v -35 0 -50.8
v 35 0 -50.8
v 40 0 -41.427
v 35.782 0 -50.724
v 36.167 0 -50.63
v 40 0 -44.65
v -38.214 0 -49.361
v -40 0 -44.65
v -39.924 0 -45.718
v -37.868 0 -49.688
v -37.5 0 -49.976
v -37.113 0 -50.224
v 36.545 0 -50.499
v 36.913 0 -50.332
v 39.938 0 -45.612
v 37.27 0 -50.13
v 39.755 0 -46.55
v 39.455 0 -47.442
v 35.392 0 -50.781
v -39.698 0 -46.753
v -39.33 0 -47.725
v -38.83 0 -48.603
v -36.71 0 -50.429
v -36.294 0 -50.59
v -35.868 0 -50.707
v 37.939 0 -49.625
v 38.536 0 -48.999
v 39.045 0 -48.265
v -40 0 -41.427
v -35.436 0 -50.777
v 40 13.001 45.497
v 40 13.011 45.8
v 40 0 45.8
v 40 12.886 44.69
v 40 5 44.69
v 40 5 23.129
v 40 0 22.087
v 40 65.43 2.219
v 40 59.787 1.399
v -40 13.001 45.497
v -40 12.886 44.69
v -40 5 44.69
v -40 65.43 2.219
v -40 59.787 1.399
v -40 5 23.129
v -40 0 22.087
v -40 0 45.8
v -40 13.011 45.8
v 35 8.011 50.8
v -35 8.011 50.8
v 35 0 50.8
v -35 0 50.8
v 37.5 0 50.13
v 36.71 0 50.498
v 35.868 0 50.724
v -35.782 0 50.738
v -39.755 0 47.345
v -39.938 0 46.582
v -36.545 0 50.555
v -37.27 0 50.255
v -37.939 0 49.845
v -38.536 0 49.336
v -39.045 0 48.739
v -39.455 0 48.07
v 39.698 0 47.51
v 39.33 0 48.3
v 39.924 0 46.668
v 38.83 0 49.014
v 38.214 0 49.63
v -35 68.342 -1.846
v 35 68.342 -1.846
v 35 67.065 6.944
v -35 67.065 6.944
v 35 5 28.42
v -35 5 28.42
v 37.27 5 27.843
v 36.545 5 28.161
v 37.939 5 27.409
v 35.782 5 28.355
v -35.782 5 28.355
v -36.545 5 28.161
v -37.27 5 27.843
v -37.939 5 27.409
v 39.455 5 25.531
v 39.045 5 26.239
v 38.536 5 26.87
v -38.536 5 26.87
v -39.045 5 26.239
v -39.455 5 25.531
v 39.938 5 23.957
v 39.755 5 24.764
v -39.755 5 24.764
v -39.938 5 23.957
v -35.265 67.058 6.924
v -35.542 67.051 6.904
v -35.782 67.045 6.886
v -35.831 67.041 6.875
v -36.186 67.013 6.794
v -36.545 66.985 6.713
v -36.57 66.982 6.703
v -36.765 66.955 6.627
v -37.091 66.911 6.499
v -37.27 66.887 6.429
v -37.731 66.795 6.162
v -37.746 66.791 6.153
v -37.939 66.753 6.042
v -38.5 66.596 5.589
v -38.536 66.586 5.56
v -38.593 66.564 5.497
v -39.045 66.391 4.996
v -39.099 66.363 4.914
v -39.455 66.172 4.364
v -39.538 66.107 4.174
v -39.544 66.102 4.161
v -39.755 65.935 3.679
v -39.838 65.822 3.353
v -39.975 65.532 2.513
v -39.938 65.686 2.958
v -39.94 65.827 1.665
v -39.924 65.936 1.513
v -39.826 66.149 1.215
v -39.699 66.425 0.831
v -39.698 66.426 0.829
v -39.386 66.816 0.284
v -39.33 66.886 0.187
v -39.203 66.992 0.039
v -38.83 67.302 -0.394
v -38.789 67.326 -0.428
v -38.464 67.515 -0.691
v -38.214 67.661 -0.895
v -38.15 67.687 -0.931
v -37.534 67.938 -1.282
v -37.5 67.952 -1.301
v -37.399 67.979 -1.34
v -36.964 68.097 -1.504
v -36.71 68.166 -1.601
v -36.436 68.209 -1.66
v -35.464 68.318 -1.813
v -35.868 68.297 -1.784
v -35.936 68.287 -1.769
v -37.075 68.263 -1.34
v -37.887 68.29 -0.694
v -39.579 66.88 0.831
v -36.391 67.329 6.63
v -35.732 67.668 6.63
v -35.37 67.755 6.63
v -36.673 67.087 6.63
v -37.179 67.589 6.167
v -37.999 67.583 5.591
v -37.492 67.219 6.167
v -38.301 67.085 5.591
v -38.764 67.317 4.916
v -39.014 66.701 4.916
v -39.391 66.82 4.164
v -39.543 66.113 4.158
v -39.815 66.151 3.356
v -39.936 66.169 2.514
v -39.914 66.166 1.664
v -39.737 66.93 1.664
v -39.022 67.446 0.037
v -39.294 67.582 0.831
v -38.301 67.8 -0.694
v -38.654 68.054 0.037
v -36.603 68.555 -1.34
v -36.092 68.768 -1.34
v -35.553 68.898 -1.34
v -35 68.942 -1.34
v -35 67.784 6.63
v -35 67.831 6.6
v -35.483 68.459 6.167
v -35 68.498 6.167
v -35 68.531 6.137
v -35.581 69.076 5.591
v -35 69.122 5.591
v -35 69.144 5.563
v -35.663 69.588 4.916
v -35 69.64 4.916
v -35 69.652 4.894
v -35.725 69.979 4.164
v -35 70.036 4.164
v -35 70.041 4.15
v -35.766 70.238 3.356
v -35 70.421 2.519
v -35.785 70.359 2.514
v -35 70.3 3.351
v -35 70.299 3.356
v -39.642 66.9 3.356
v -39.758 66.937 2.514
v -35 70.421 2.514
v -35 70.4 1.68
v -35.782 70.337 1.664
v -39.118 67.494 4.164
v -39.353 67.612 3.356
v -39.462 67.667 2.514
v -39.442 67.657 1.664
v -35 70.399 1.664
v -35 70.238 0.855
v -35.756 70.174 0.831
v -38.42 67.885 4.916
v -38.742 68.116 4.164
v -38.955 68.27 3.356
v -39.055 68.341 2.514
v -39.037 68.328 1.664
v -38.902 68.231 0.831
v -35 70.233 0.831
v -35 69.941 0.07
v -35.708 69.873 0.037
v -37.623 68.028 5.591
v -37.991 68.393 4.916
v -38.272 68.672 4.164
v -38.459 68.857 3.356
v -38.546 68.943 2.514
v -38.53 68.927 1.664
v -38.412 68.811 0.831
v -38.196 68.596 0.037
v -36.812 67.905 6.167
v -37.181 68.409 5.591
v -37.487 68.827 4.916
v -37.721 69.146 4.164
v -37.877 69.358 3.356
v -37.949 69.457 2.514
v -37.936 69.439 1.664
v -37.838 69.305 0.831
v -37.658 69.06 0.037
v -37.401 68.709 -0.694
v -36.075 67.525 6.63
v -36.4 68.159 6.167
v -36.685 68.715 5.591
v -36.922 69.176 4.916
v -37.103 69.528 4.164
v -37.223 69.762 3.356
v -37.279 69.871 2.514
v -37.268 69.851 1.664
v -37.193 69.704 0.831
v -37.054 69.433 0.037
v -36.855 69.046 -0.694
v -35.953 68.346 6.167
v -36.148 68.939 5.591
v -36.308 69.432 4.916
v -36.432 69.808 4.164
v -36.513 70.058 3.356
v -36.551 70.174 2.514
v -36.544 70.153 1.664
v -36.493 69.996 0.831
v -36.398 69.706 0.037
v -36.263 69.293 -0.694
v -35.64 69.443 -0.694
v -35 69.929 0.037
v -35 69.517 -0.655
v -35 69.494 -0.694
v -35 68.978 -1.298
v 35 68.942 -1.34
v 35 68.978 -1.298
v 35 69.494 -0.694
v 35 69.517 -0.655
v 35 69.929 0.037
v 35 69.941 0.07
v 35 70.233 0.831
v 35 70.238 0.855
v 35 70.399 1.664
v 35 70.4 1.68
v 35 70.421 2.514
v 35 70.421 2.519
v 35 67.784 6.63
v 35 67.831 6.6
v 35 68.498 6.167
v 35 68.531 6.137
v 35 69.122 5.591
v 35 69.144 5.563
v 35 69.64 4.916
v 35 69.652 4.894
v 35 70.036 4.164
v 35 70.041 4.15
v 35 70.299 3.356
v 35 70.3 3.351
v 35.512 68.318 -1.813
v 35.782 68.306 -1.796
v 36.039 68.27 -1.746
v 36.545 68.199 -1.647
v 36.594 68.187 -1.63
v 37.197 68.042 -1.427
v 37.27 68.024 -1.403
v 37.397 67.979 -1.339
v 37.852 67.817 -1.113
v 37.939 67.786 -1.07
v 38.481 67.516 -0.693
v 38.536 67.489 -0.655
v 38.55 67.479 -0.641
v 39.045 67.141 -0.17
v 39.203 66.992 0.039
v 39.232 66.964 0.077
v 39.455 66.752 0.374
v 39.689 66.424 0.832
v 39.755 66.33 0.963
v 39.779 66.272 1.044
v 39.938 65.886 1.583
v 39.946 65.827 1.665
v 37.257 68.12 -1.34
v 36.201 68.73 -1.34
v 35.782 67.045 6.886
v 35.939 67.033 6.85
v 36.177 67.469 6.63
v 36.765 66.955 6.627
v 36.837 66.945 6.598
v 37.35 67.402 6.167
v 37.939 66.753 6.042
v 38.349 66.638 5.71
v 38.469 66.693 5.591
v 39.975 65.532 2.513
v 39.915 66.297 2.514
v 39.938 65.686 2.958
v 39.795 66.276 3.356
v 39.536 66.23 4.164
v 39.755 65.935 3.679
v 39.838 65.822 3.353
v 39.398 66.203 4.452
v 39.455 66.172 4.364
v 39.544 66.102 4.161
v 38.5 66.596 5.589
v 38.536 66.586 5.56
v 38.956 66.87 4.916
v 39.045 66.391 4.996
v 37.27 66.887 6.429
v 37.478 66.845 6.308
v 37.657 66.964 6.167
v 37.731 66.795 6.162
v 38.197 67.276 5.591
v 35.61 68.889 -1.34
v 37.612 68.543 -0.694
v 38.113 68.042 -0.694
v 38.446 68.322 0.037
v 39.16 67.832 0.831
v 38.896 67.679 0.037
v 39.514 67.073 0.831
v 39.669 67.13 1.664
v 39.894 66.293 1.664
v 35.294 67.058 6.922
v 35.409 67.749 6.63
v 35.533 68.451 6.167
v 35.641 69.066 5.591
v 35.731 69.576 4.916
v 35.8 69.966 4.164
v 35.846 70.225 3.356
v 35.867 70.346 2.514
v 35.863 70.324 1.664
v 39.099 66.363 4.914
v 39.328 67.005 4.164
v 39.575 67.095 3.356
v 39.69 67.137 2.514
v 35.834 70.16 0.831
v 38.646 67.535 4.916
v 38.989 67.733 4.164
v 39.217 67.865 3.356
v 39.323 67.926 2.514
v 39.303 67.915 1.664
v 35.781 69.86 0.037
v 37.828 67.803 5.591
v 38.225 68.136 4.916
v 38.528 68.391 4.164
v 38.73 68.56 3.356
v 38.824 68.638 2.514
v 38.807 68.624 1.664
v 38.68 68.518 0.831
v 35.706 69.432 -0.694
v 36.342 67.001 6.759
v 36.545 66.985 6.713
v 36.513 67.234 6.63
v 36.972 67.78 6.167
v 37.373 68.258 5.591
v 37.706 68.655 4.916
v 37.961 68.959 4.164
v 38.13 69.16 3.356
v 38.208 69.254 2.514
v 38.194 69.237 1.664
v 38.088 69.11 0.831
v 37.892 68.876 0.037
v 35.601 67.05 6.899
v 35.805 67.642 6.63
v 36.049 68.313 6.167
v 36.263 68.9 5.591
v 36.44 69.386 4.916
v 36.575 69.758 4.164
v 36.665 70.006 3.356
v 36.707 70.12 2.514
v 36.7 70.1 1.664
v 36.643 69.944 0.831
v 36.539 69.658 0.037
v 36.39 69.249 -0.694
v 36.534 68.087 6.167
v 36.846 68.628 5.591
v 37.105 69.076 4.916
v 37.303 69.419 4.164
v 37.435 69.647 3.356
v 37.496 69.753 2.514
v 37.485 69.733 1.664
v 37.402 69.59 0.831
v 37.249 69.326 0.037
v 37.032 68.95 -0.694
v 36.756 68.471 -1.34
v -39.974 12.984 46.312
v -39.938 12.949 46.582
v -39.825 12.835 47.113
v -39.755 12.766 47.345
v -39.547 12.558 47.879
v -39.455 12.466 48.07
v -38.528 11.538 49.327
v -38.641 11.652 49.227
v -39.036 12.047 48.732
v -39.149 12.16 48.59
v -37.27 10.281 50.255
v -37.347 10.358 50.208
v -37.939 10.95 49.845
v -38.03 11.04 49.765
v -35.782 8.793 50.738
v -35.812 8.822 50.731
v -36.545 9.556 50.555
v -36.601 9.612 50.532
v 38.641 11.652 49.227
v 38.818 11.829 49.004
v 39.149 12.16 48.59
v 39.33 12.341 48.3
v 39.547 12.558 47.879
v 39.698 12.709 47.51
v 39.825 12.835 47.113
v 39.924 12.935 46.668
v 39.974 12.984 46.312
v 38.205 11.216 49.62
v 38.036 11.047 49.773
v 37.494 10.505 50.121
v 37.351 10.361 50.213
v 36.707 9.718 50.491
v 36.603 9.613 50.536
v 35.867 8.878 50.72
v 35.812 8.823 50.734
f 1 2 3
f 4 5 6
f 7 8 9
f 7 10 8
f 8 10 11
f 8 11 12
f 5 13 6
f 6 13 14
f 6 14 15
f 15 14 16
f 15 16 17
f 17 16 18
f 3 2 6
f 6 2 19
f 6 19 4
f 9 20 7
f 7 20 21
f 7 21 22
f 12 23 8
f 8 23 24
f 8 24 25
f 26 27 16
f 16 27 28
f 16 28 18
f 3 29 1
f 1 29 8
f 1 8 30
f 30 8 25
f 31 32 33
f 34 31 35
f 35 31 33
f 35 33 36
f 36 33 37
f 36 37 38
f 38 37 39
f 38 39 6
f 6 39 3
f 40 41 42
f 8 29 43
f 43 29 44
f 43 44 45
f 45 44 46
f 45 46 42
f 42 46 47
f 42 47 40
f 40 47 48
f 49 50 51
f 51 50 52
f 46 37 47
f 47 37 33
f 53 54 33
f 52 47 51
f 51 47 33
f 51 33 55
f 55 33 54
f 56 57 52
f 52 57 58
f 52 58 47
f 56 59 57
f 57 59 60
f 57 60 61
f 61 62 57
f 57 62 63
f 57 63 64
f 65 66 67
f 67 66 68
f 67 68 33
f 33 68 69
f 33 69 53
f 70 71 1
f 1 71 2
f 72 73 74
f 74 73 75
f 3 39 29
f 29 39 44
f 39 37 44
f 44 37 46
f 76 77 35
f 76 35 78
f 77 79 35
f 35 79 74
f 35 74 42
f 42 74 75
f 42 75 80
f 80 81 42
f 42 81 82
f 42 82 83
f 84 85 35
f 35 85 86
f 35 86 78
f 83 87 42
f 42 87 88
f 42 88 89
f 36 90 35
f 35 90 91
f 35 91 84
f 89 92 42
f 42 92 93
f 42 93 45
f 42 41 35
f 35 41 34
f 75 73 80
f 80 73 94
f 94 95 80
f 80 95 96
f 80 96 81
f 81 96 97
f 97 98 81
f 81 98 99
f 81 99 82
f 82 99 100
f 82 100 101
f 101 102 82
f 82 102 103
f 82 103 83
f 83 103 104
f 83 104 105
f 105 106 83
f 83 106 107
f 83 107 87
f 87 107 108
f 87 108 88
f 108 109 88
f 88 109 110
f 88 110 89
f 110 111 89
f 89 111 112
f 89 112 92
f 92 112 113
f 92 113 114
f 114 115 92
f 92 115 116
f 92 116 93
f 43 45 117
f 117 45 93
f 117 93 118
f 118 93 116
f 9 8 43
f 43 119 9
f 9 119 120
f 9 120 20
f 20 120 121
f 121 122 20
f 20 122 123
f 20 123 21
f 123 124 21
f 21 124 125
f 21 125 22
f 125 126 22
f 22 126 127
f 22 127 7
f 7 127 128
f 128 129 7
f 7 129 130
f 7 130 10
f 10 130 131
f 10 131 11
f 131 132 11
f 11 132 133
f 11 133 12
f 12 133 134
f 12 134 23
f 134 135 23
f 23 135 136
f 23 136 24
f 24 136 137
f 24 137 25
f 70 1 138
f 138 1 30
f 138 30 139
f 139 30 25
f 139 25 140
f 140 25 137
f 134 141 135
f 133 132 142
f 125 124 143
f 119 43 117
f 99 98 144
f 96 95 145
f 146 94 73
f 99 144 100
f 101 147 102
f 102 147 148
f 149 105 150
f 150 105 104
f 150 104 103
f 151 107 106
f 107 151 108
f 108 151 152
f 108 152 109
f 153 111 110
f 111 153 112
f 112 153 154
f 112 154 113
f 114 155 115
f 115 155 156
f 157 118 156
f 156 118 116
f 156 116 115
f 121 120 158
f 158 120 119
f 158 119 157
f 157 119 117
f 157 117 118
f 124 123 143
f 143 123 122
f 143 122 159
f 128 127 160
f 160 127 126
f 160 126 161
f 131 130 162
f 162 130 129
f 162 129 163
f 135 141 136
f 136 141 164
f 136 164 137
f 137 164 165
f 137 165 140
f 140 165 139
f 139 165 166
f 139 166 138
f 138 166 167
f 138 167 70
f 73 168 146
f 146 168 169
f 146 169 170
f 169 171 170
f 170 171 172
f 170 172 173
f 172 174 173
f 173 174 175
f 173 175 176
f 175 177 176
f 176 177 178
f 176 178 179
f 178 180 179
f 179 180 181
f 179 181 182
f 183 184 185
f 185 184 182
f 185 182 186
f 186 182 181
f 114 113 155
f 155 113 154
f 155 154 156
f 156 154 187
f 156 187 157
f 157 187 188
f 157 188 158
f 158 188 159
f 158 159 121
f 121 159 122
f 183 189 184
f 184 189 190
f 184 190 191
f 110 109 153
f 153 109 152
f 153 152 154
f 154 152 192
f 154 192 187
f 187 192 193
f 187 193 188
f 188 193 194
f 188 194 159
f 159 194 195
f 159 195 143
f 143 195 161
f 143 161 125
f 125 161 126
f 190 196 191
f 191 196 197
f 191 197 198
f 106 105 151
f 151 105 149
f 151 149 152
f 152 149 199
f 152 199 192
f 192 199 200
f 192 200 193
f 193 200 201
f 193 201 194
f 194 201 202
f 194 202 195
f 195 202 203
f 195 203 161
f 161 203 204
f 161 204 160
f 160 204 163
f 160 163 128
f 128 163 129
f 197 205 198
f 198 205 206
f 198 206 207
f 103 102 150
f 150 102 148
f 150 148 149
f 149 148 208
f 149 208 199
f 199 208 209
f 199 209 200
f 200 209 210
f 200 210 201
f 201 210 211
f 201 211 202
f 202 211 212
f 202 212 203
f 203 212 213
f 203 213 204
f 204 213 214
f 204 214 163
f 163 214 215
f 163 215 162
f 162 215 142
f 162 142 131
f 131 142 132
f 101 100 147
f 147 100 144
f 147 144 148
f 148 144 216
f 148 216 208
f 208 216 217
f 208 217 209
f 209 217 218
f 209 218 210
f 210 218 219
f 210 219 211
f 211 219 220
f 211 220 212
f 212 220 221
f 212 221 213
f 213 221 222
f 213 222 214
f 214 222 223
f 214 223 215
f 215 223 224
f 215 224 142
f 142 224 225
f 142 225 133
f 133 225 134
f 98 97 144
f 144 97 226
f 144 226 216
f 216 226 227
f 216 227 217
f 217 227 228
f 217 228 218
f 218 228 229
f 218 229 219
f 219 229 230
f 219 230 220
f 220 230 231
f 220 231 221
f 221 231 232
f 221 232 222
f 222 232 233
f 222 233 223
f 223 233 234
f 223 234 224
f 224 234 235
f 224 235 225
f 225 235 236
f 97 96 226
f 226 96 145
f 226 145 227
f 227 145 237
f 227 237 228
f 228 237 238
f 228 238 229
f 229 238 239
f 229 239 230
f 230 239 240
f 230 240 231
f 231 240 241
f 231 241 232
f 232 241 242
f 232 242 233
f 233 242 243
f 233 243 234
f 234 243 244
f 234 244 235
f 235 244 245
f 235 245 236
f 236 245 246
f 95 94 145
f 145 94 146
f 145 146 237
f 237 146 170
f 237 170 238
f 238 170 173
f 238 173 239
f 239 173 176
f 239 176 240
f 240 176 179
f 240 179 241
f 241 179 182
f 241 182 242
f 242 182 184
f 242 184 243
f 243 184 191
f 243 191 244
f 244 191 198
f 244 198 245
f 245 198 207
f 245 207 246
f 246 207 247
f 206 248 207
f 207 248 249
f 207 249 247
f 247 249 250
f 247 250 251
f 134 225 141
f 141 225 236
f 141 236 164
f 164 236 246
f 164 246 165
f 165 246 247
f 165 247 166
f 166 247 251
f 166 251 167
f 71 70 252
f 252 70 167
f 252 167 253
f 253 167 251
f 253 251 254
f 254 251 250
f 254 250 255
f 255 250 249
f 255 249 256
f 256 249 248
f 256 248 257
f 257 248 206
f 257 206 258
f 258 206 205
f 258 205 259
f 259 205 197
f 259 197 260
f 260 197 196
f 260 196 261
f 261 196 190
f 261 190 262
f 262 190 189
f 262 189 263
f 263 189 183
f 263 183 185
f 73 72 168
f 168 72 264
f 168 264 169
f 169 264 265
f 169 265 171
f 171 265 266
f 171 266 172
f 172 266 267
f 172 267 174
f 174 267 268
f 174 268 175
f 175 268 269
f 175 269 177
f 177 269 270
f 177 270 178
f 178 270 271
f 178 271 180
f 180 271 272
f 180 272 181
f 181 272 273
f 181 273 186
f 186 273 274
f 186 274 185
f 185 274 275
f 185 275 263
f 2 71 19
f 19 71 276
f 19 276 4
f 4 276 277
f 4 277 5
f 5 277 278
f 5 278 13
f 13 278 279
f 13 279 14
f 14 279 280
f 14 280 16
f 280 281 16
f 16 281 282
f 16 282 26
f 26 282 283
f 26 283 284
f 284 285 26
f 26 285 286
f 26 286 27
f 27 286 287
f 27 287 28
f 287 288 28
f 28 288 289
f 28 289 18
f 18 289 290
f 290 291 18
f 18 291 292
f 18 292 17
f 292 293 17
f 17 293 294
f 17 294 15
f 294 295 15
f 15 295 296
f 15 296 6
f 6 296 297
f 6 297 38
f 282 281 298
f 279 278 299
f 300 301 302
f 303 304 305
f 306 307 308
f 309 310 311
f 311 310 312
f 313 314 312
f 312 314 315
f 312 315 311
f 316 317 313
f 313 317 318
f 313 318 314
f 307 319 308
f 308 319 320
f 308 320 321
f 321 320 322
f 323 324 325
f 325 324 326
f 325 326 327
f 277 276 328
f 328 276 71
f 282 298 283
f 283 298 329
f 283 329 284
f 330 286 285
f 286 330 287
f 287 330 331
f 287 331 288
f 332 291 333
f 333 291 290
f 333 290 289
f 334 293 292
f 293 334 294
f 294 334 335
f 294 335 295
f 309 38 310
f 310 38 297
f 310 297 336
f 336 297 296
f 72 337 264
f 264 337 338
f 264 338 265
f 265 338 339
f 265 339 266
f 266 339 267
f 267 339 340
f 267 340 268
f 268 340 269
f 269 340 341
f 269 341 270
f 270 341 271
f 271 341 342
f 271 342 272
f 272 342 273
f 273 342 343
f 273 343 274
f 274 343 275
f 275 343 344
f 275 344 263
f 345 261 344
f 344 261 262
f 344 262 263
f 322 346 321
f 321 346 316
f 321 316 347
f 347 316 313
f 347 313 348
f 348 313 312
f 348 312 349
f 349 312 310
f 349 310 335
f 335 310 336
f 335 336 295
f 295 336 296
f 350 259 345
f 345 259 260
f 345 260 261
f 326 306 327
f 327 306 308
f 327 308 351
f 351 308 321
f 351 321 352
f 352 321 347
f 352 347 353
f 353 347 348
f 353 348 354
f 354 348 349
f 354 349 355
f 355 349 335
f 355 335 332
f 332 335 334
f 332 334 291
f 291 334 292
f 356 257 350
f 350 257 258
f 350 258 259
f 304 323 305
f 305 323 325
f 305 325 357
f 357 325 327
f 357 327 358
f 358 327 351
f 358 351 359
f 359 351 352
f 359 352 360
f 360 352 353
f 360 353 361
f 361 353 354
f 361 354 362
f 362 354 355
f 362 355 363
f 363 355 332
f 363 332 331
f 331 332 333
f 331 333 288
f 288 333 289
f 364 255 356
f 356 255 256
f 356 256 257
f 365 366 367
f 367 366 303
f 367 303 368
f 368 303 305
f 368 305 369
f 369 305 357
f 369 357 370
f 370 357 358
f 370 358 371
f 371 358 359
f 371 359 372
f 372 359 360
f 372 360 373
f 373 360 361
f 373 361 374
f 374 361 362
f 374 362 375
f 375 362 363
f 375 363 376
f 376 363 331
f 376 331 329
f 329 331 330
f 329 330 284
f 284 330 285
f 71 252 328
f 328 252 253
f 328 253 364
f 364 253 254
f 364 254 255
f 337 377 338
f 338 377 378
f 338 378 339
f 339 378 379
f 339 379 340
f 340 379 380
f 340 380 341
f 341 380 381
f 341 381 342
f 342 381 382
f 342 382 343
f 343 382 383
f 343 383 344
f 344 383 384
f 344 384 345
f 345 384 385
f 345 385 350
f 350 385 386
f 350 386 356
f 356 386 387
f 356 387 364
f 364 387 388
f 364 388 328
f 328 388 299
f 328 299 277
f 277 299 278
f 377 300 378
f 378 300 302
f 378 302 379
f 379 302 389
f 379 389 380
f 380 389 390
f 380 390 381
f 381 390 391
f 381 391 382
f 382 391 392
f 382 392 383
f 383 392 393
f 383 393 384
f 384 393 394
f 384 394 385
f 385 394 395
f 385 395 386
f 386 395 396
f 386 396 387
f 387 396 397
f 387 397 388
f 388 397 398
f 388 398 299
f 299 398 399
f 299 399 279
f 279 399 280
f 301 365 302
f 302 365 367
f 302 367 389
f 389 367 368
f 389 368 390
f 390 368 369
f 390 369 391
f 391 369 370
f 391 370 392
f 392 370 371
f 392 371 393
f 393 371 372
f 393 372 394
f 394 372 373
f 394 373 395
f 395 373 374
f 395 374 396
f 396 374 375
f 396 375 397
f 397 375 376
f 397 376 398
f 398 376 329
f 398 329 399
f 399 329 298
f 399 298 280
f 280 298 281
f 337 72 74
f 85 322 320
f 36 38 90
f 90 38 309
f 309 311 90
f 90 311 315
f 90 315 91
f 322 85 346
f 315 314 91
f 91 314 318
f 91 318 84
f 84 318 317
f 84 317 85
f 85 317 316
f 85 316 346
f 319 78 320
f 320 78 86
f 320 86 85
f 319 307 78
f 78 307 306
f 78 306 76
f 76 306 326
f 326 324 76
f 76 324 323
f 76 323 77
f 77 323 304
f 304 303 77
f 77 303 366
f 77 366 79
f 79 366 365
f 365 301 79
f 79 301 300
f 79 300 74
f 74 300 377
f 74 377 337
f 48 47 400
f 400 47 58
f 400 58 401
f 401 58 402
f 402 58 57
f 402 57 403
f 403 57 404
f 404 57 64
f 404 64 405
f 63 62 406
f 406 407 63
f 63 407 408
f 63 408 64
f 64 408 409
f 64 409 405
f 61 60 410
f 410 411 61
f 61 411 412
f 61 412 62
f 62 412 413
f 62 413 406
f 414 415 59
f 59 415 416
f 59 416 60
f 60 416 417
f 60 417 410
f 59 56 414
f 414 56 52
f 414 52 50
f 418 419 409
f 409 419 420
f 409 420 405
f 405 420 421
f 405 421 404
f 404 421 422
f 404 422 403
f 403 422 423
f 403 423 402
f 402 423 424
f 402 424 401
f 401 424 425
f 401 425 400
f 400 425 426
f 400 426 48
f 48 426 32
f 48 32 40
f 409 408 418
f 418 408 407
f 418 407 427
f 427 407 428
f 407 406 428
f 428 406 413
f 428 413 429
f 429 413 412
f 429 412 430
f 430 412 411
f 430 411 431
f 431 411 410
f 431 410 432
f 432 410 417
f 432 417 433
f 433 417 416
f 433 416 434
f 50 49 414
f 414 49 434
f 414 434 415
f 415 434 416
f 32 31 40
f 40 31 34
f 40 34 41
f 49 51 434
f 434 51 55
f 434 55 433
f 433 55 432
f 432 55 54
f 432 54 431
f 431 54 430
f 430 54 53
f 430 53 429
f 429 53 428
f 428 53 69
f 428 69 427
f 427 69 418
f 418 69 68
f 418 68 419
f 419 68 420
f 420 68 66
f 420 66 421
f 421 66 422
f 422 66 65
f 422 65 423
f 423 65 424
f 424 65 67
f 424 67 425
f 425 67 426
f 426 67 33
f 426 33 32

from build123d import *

# Parameters (mm, degrees)
BASE_W                  = 80
BASE_H                  = 101.6
BOSS_EXTRUDE1_DEPTH     = 76.2
SKETCH2_OUTSIDE_W       = 133.62
SKETCH2_OUTSIDE_H       = 108.22
CUT_EXTRUDE1_DEPTH      = 122.602138139
CUT_EXTRUDE2_DEPTH      = 122.602138139
CUT_EXTRUDE5_DEPTH      = 122.602138139
CUT_EXTRUDE5_DEPTH_BACK = 122.602138139
FILLET9_R               = 5


with BuildPart() as part:
    # Base → Boss-Extrude1 (new body)
    with BuildSketch(Plane(origin=(0, 0, 0), x_dir=(1, 0, 0), z_dir=(0, 1, 0))):
        Rectangle(BASE_W, BASE_H)
    extrude(amount=BOSS_EXTRUDE1_DEPTH)

    # Sketch2 outside → Cut-Extrude1 (cut, through all)
    with BuildSketch(Plane.ZY.offset(40)):
        with Locations((0, 38.1)):
            Rectangle(SKETCH2_OUTSIDE_W, SKETCH2_OUTSIDE_H)
        Polygon((-50.8, 0), (3.783173521, 76.2), (27.722793107, 7.014775443), (50.8, 15), (50.8, 0), align=None, mode=Mode.SUBTRACT)
    extrude(amount=-CUT_EXTRUDE1_DEPTH, mode=Mode.SUBTRACT)

    # Sketch3 → Cut-Extrude2 (cut, through all)
    with BuildSketch(Plane.ZY.offset(40)):
        Polygon((-41.426759988, 0), (22.086778061, 0), (1.39927914, 59.786633335), align=None)
    extrude(amount=-CUT_EXTRUDE2_DEPTH, mode=Mode.SUBTRACT)

    # Sketch4 → Cut-Extrude5 (cut, two sides: drawn at the far end of the back side and taken through both)
    with BuildSketch(Plane.ZY.offset(40).offset(-CUT_EXTRUDE5_DEPTH_BACK)):
        Polygon((-50.478149223, 233.014597048), (27.722793107, 7.014775443), (28.419950021, 5), (44.690435309, 5), (44.690435309, 12.88595534), (44.690435309, 252.032995353), (-49.038158805, 721.053440145), (-144.206743336, 702.035041841), align=None)
    extrude(amount=CUT_EXTRUDE5_DEPTH + CUT_EXTRUDE5_DEPTH_BACK, mode=Mode.SUBTRACT)

    # Fillet9
    # the kernel refuses this fillet: 5 mm, written as the material it takes off along each edge
    with BuildSketch(Plane(origin=(35, 65.430074367, 2.218938363), x_dir=(0, 0.3269994156125086, 0.9450245405221379), z_dir=(1, 0, 0))) as fillet9_piece_1_section:
        Polygon((0, 0), (FILLET9_R * 1.02, 0), (FILLET9_R * 1.02, -FILLET9_R * 1.97193336822), (-FILLET9_R * 0.58939542952, -FILLET9_R * 0.832474040232), align=None)
    fillet9_piece_1 = extrude(amount=FILLET9_R * 1.02, mode=Mode.PRIVATE)
    fillet9_piece_1 = fillet9_piece_1 - Plane(origin=(35, 65.430074367, 2.218938363), x_dir=(0, -0.9896165143253448, -0.14373292794121578), z_dir=(1, 0, 0)) * Sphere(FILLET9_R, mode=Mode.PRIVATE)
    add(fillet9_piece_1, mode=Mode.SUBTRACT)
    with BuildSketch(Plane(origin=(-35, 65.430074367, 2.218938363), x_dir=(0, 0.5823298395581055, -0.8129526172909656), z_dir=(-1, 0, 0))) as fillet9_piece_2_section:
        Polygon((0, 0), (FILLET9_R * 1.02, 0), (FILLET9_R * 1.02, -FILLET9_R * 1.97193336822), (-FILLET9_R * 0.58939542952, -FILLET9_R * 0.832474040232), align=None)
    fillet9_piece_2 = extrude(amount=FILLET9_R * 1.02, mode=Mode.PRIVATE)
    fillet9_piece_2 = fillet9_piece_2 - Plane(origin=(-35, 65.430074367, 2.218938363), x_dir=(0, -0.9896165143253448, -0.14373292794121578), z_dir=(-1, 0, 0)) * Sphere(FILLET9_R, mode=Mode.PRIVATE)
    add(fillet9_piece_2, mode=Mode.SUBTRACT)
    with BuildSketch(Plane(origin=(40, 67.065071445, 6.944061066), x_dir=(-1, 0, 0), z_dir=(0, -0.9450245405221379, 0.32699941561250884))) as fillet9_piece_3_section:
        with BuildLine():
            CenterArc((FILLET9_R, FILLET9_R), FILLET9_R, 180, 90)
            Line((0, FILLET9_R), (0, 0))
            Line((0, 0), (FILLET9_R, 0))
        make_face()
    fillet9_piece_3 = extrude(amount=78.175618763, mode=Mode.PRIVATE)
    fillet9_piece_3 = split(fillet9_piece_3, bisect_by=Plane(origin=(40, 5, 6.944061066), z_dir=(0, 1, 0)), keep=Keep.TOP, mode=Mode.PRIVATE)
    add(fillet9_piece_3, mode=Mode.SUBTRACT)
    with BuildSketch(Plane(origin=(40, -12.5, 50.8), x_dir=(-1, 0, 0), z_dir=(0, 1, 0))) as fillet9_piece_4:
        with BuildLine():
            CenterArc((FILLET9_R, -FILLET9_R), FILLET9_R, 90, 90)
            Line((0, -FILLET9_R), (0, 0))
            Line((0, 0), (FILLET9_R, 0))
        make_face()
    extrude(amount=40, mode=Mode.SUBTRACT)
    with BuildSketch(Plane(origin=(-57.473442698, 15, 50.8), x_dir=(0, -0.32699941561252693, -0.9450245405221316), z_dir=(1, 0, 0))) as fillet9_piece_5:
        with BuildLine():
            CenterArc((7.010644923, -4.970135785), FILLET9_R, 96.265339119, 102.821413949)
            Line((2.28552222, -6.605132863), (0, 0))
            Line((0, 0), (6.464979934, 0))
        make_face()
    extrude(amount=114.946885396, mode=Mode.SUBTRACT)
    with BuildSketch(Plane(origin=(-40, -12.5, 50.8), x_dir=(1, 0, 0), z_dir=(0, 1, 0))) as fillet9_piece_6:
        with BuildLine():
            CenterArc((FILLET9_R, FILLET9_R), FILLET9_R, 180, 90)
            Line((0, FILLET9_R), (0, 0))
            Line((0, 0), (FILLET9_R, 0))
        make_face()
    extrude(amount=40, mode=Mode.SUBTRACT)
    with BuildSketch(Plane(origin=(-40, -6.812806757, 32.507442716), x_dir=(1, 0, 0), z_dir=(0, 0.9450245405221379, -0.32699941561250884))) as fillet9_piece_7_section:
        with BuildLine():
            CenterArc((FILLET9_R, FILLET9_R), FILLET9_R, 180, 90)
            Line((0, FILLET9_R), (0, 0))
            Line((0, 0), (FILLET9_R, 0))
        make_face()
    fillet9_piece_7 = extrude(amount=78.175618763, mode=Mode.PRIVATE)
    fillet9_piece_7 = split(fillet9_piece_7, bisect_by=Plane(origin=(-40, 5, 32.507442716), z_dir=(0, 1, 0)), keep=Keep.TOP, mode=Mode.PRIVATE)
    add(fillet9_piece_7, mode=Mode.SUBTRACT)
    with BuildSketch(Plane(origin=(-40, -10.161907716, -58.079122994), x_dir=(1, 0, 0), z_dir=(0, 0.8129526172909656, 0.5823298395581055)), Plane(origin=(40, 68.341723565, -1.845824723), x_dir=(-1, 0, 0), z_dir=(0, -0.8129526172909656, -0.5823298395581055))) as fillet9_piece_8:
        with BuildLine():
            CenterArc((FILLET9_R, -FILLET9_R), FILLET9_R, 90, 90)
            Line((0, -FILLET9_R), (0, 0))
            Line((0, 0), (FILLET9_R, 0))
        make_face()
    extrude(amount=96.566060077, mode=Mode.SUBTRACT)
    with BuildSketch(Plane(origin=(-35, 76.2, 3.783173521), x_dir=(0, -0.8129526172909656, -0.5823298395581056), z_dir=(1, 0, 0))) as fillet9_piece_9:
        with BuildLine():
            CenterArc((FILLET9_R * 1.93326800806, -FILLET9_R), FILLET9_R, 90, 125.29866839)
            Line((FILLET9_R * 1.11711698822, -FILLET9_R * 1.57783865639), (0, 0))
            Line((0, 0), (FILLET9_R * 1.93326800806, 0))
        make_face()
    extrude(amount=70, mode=Mode.SUBTRACT)


solid = part.part
